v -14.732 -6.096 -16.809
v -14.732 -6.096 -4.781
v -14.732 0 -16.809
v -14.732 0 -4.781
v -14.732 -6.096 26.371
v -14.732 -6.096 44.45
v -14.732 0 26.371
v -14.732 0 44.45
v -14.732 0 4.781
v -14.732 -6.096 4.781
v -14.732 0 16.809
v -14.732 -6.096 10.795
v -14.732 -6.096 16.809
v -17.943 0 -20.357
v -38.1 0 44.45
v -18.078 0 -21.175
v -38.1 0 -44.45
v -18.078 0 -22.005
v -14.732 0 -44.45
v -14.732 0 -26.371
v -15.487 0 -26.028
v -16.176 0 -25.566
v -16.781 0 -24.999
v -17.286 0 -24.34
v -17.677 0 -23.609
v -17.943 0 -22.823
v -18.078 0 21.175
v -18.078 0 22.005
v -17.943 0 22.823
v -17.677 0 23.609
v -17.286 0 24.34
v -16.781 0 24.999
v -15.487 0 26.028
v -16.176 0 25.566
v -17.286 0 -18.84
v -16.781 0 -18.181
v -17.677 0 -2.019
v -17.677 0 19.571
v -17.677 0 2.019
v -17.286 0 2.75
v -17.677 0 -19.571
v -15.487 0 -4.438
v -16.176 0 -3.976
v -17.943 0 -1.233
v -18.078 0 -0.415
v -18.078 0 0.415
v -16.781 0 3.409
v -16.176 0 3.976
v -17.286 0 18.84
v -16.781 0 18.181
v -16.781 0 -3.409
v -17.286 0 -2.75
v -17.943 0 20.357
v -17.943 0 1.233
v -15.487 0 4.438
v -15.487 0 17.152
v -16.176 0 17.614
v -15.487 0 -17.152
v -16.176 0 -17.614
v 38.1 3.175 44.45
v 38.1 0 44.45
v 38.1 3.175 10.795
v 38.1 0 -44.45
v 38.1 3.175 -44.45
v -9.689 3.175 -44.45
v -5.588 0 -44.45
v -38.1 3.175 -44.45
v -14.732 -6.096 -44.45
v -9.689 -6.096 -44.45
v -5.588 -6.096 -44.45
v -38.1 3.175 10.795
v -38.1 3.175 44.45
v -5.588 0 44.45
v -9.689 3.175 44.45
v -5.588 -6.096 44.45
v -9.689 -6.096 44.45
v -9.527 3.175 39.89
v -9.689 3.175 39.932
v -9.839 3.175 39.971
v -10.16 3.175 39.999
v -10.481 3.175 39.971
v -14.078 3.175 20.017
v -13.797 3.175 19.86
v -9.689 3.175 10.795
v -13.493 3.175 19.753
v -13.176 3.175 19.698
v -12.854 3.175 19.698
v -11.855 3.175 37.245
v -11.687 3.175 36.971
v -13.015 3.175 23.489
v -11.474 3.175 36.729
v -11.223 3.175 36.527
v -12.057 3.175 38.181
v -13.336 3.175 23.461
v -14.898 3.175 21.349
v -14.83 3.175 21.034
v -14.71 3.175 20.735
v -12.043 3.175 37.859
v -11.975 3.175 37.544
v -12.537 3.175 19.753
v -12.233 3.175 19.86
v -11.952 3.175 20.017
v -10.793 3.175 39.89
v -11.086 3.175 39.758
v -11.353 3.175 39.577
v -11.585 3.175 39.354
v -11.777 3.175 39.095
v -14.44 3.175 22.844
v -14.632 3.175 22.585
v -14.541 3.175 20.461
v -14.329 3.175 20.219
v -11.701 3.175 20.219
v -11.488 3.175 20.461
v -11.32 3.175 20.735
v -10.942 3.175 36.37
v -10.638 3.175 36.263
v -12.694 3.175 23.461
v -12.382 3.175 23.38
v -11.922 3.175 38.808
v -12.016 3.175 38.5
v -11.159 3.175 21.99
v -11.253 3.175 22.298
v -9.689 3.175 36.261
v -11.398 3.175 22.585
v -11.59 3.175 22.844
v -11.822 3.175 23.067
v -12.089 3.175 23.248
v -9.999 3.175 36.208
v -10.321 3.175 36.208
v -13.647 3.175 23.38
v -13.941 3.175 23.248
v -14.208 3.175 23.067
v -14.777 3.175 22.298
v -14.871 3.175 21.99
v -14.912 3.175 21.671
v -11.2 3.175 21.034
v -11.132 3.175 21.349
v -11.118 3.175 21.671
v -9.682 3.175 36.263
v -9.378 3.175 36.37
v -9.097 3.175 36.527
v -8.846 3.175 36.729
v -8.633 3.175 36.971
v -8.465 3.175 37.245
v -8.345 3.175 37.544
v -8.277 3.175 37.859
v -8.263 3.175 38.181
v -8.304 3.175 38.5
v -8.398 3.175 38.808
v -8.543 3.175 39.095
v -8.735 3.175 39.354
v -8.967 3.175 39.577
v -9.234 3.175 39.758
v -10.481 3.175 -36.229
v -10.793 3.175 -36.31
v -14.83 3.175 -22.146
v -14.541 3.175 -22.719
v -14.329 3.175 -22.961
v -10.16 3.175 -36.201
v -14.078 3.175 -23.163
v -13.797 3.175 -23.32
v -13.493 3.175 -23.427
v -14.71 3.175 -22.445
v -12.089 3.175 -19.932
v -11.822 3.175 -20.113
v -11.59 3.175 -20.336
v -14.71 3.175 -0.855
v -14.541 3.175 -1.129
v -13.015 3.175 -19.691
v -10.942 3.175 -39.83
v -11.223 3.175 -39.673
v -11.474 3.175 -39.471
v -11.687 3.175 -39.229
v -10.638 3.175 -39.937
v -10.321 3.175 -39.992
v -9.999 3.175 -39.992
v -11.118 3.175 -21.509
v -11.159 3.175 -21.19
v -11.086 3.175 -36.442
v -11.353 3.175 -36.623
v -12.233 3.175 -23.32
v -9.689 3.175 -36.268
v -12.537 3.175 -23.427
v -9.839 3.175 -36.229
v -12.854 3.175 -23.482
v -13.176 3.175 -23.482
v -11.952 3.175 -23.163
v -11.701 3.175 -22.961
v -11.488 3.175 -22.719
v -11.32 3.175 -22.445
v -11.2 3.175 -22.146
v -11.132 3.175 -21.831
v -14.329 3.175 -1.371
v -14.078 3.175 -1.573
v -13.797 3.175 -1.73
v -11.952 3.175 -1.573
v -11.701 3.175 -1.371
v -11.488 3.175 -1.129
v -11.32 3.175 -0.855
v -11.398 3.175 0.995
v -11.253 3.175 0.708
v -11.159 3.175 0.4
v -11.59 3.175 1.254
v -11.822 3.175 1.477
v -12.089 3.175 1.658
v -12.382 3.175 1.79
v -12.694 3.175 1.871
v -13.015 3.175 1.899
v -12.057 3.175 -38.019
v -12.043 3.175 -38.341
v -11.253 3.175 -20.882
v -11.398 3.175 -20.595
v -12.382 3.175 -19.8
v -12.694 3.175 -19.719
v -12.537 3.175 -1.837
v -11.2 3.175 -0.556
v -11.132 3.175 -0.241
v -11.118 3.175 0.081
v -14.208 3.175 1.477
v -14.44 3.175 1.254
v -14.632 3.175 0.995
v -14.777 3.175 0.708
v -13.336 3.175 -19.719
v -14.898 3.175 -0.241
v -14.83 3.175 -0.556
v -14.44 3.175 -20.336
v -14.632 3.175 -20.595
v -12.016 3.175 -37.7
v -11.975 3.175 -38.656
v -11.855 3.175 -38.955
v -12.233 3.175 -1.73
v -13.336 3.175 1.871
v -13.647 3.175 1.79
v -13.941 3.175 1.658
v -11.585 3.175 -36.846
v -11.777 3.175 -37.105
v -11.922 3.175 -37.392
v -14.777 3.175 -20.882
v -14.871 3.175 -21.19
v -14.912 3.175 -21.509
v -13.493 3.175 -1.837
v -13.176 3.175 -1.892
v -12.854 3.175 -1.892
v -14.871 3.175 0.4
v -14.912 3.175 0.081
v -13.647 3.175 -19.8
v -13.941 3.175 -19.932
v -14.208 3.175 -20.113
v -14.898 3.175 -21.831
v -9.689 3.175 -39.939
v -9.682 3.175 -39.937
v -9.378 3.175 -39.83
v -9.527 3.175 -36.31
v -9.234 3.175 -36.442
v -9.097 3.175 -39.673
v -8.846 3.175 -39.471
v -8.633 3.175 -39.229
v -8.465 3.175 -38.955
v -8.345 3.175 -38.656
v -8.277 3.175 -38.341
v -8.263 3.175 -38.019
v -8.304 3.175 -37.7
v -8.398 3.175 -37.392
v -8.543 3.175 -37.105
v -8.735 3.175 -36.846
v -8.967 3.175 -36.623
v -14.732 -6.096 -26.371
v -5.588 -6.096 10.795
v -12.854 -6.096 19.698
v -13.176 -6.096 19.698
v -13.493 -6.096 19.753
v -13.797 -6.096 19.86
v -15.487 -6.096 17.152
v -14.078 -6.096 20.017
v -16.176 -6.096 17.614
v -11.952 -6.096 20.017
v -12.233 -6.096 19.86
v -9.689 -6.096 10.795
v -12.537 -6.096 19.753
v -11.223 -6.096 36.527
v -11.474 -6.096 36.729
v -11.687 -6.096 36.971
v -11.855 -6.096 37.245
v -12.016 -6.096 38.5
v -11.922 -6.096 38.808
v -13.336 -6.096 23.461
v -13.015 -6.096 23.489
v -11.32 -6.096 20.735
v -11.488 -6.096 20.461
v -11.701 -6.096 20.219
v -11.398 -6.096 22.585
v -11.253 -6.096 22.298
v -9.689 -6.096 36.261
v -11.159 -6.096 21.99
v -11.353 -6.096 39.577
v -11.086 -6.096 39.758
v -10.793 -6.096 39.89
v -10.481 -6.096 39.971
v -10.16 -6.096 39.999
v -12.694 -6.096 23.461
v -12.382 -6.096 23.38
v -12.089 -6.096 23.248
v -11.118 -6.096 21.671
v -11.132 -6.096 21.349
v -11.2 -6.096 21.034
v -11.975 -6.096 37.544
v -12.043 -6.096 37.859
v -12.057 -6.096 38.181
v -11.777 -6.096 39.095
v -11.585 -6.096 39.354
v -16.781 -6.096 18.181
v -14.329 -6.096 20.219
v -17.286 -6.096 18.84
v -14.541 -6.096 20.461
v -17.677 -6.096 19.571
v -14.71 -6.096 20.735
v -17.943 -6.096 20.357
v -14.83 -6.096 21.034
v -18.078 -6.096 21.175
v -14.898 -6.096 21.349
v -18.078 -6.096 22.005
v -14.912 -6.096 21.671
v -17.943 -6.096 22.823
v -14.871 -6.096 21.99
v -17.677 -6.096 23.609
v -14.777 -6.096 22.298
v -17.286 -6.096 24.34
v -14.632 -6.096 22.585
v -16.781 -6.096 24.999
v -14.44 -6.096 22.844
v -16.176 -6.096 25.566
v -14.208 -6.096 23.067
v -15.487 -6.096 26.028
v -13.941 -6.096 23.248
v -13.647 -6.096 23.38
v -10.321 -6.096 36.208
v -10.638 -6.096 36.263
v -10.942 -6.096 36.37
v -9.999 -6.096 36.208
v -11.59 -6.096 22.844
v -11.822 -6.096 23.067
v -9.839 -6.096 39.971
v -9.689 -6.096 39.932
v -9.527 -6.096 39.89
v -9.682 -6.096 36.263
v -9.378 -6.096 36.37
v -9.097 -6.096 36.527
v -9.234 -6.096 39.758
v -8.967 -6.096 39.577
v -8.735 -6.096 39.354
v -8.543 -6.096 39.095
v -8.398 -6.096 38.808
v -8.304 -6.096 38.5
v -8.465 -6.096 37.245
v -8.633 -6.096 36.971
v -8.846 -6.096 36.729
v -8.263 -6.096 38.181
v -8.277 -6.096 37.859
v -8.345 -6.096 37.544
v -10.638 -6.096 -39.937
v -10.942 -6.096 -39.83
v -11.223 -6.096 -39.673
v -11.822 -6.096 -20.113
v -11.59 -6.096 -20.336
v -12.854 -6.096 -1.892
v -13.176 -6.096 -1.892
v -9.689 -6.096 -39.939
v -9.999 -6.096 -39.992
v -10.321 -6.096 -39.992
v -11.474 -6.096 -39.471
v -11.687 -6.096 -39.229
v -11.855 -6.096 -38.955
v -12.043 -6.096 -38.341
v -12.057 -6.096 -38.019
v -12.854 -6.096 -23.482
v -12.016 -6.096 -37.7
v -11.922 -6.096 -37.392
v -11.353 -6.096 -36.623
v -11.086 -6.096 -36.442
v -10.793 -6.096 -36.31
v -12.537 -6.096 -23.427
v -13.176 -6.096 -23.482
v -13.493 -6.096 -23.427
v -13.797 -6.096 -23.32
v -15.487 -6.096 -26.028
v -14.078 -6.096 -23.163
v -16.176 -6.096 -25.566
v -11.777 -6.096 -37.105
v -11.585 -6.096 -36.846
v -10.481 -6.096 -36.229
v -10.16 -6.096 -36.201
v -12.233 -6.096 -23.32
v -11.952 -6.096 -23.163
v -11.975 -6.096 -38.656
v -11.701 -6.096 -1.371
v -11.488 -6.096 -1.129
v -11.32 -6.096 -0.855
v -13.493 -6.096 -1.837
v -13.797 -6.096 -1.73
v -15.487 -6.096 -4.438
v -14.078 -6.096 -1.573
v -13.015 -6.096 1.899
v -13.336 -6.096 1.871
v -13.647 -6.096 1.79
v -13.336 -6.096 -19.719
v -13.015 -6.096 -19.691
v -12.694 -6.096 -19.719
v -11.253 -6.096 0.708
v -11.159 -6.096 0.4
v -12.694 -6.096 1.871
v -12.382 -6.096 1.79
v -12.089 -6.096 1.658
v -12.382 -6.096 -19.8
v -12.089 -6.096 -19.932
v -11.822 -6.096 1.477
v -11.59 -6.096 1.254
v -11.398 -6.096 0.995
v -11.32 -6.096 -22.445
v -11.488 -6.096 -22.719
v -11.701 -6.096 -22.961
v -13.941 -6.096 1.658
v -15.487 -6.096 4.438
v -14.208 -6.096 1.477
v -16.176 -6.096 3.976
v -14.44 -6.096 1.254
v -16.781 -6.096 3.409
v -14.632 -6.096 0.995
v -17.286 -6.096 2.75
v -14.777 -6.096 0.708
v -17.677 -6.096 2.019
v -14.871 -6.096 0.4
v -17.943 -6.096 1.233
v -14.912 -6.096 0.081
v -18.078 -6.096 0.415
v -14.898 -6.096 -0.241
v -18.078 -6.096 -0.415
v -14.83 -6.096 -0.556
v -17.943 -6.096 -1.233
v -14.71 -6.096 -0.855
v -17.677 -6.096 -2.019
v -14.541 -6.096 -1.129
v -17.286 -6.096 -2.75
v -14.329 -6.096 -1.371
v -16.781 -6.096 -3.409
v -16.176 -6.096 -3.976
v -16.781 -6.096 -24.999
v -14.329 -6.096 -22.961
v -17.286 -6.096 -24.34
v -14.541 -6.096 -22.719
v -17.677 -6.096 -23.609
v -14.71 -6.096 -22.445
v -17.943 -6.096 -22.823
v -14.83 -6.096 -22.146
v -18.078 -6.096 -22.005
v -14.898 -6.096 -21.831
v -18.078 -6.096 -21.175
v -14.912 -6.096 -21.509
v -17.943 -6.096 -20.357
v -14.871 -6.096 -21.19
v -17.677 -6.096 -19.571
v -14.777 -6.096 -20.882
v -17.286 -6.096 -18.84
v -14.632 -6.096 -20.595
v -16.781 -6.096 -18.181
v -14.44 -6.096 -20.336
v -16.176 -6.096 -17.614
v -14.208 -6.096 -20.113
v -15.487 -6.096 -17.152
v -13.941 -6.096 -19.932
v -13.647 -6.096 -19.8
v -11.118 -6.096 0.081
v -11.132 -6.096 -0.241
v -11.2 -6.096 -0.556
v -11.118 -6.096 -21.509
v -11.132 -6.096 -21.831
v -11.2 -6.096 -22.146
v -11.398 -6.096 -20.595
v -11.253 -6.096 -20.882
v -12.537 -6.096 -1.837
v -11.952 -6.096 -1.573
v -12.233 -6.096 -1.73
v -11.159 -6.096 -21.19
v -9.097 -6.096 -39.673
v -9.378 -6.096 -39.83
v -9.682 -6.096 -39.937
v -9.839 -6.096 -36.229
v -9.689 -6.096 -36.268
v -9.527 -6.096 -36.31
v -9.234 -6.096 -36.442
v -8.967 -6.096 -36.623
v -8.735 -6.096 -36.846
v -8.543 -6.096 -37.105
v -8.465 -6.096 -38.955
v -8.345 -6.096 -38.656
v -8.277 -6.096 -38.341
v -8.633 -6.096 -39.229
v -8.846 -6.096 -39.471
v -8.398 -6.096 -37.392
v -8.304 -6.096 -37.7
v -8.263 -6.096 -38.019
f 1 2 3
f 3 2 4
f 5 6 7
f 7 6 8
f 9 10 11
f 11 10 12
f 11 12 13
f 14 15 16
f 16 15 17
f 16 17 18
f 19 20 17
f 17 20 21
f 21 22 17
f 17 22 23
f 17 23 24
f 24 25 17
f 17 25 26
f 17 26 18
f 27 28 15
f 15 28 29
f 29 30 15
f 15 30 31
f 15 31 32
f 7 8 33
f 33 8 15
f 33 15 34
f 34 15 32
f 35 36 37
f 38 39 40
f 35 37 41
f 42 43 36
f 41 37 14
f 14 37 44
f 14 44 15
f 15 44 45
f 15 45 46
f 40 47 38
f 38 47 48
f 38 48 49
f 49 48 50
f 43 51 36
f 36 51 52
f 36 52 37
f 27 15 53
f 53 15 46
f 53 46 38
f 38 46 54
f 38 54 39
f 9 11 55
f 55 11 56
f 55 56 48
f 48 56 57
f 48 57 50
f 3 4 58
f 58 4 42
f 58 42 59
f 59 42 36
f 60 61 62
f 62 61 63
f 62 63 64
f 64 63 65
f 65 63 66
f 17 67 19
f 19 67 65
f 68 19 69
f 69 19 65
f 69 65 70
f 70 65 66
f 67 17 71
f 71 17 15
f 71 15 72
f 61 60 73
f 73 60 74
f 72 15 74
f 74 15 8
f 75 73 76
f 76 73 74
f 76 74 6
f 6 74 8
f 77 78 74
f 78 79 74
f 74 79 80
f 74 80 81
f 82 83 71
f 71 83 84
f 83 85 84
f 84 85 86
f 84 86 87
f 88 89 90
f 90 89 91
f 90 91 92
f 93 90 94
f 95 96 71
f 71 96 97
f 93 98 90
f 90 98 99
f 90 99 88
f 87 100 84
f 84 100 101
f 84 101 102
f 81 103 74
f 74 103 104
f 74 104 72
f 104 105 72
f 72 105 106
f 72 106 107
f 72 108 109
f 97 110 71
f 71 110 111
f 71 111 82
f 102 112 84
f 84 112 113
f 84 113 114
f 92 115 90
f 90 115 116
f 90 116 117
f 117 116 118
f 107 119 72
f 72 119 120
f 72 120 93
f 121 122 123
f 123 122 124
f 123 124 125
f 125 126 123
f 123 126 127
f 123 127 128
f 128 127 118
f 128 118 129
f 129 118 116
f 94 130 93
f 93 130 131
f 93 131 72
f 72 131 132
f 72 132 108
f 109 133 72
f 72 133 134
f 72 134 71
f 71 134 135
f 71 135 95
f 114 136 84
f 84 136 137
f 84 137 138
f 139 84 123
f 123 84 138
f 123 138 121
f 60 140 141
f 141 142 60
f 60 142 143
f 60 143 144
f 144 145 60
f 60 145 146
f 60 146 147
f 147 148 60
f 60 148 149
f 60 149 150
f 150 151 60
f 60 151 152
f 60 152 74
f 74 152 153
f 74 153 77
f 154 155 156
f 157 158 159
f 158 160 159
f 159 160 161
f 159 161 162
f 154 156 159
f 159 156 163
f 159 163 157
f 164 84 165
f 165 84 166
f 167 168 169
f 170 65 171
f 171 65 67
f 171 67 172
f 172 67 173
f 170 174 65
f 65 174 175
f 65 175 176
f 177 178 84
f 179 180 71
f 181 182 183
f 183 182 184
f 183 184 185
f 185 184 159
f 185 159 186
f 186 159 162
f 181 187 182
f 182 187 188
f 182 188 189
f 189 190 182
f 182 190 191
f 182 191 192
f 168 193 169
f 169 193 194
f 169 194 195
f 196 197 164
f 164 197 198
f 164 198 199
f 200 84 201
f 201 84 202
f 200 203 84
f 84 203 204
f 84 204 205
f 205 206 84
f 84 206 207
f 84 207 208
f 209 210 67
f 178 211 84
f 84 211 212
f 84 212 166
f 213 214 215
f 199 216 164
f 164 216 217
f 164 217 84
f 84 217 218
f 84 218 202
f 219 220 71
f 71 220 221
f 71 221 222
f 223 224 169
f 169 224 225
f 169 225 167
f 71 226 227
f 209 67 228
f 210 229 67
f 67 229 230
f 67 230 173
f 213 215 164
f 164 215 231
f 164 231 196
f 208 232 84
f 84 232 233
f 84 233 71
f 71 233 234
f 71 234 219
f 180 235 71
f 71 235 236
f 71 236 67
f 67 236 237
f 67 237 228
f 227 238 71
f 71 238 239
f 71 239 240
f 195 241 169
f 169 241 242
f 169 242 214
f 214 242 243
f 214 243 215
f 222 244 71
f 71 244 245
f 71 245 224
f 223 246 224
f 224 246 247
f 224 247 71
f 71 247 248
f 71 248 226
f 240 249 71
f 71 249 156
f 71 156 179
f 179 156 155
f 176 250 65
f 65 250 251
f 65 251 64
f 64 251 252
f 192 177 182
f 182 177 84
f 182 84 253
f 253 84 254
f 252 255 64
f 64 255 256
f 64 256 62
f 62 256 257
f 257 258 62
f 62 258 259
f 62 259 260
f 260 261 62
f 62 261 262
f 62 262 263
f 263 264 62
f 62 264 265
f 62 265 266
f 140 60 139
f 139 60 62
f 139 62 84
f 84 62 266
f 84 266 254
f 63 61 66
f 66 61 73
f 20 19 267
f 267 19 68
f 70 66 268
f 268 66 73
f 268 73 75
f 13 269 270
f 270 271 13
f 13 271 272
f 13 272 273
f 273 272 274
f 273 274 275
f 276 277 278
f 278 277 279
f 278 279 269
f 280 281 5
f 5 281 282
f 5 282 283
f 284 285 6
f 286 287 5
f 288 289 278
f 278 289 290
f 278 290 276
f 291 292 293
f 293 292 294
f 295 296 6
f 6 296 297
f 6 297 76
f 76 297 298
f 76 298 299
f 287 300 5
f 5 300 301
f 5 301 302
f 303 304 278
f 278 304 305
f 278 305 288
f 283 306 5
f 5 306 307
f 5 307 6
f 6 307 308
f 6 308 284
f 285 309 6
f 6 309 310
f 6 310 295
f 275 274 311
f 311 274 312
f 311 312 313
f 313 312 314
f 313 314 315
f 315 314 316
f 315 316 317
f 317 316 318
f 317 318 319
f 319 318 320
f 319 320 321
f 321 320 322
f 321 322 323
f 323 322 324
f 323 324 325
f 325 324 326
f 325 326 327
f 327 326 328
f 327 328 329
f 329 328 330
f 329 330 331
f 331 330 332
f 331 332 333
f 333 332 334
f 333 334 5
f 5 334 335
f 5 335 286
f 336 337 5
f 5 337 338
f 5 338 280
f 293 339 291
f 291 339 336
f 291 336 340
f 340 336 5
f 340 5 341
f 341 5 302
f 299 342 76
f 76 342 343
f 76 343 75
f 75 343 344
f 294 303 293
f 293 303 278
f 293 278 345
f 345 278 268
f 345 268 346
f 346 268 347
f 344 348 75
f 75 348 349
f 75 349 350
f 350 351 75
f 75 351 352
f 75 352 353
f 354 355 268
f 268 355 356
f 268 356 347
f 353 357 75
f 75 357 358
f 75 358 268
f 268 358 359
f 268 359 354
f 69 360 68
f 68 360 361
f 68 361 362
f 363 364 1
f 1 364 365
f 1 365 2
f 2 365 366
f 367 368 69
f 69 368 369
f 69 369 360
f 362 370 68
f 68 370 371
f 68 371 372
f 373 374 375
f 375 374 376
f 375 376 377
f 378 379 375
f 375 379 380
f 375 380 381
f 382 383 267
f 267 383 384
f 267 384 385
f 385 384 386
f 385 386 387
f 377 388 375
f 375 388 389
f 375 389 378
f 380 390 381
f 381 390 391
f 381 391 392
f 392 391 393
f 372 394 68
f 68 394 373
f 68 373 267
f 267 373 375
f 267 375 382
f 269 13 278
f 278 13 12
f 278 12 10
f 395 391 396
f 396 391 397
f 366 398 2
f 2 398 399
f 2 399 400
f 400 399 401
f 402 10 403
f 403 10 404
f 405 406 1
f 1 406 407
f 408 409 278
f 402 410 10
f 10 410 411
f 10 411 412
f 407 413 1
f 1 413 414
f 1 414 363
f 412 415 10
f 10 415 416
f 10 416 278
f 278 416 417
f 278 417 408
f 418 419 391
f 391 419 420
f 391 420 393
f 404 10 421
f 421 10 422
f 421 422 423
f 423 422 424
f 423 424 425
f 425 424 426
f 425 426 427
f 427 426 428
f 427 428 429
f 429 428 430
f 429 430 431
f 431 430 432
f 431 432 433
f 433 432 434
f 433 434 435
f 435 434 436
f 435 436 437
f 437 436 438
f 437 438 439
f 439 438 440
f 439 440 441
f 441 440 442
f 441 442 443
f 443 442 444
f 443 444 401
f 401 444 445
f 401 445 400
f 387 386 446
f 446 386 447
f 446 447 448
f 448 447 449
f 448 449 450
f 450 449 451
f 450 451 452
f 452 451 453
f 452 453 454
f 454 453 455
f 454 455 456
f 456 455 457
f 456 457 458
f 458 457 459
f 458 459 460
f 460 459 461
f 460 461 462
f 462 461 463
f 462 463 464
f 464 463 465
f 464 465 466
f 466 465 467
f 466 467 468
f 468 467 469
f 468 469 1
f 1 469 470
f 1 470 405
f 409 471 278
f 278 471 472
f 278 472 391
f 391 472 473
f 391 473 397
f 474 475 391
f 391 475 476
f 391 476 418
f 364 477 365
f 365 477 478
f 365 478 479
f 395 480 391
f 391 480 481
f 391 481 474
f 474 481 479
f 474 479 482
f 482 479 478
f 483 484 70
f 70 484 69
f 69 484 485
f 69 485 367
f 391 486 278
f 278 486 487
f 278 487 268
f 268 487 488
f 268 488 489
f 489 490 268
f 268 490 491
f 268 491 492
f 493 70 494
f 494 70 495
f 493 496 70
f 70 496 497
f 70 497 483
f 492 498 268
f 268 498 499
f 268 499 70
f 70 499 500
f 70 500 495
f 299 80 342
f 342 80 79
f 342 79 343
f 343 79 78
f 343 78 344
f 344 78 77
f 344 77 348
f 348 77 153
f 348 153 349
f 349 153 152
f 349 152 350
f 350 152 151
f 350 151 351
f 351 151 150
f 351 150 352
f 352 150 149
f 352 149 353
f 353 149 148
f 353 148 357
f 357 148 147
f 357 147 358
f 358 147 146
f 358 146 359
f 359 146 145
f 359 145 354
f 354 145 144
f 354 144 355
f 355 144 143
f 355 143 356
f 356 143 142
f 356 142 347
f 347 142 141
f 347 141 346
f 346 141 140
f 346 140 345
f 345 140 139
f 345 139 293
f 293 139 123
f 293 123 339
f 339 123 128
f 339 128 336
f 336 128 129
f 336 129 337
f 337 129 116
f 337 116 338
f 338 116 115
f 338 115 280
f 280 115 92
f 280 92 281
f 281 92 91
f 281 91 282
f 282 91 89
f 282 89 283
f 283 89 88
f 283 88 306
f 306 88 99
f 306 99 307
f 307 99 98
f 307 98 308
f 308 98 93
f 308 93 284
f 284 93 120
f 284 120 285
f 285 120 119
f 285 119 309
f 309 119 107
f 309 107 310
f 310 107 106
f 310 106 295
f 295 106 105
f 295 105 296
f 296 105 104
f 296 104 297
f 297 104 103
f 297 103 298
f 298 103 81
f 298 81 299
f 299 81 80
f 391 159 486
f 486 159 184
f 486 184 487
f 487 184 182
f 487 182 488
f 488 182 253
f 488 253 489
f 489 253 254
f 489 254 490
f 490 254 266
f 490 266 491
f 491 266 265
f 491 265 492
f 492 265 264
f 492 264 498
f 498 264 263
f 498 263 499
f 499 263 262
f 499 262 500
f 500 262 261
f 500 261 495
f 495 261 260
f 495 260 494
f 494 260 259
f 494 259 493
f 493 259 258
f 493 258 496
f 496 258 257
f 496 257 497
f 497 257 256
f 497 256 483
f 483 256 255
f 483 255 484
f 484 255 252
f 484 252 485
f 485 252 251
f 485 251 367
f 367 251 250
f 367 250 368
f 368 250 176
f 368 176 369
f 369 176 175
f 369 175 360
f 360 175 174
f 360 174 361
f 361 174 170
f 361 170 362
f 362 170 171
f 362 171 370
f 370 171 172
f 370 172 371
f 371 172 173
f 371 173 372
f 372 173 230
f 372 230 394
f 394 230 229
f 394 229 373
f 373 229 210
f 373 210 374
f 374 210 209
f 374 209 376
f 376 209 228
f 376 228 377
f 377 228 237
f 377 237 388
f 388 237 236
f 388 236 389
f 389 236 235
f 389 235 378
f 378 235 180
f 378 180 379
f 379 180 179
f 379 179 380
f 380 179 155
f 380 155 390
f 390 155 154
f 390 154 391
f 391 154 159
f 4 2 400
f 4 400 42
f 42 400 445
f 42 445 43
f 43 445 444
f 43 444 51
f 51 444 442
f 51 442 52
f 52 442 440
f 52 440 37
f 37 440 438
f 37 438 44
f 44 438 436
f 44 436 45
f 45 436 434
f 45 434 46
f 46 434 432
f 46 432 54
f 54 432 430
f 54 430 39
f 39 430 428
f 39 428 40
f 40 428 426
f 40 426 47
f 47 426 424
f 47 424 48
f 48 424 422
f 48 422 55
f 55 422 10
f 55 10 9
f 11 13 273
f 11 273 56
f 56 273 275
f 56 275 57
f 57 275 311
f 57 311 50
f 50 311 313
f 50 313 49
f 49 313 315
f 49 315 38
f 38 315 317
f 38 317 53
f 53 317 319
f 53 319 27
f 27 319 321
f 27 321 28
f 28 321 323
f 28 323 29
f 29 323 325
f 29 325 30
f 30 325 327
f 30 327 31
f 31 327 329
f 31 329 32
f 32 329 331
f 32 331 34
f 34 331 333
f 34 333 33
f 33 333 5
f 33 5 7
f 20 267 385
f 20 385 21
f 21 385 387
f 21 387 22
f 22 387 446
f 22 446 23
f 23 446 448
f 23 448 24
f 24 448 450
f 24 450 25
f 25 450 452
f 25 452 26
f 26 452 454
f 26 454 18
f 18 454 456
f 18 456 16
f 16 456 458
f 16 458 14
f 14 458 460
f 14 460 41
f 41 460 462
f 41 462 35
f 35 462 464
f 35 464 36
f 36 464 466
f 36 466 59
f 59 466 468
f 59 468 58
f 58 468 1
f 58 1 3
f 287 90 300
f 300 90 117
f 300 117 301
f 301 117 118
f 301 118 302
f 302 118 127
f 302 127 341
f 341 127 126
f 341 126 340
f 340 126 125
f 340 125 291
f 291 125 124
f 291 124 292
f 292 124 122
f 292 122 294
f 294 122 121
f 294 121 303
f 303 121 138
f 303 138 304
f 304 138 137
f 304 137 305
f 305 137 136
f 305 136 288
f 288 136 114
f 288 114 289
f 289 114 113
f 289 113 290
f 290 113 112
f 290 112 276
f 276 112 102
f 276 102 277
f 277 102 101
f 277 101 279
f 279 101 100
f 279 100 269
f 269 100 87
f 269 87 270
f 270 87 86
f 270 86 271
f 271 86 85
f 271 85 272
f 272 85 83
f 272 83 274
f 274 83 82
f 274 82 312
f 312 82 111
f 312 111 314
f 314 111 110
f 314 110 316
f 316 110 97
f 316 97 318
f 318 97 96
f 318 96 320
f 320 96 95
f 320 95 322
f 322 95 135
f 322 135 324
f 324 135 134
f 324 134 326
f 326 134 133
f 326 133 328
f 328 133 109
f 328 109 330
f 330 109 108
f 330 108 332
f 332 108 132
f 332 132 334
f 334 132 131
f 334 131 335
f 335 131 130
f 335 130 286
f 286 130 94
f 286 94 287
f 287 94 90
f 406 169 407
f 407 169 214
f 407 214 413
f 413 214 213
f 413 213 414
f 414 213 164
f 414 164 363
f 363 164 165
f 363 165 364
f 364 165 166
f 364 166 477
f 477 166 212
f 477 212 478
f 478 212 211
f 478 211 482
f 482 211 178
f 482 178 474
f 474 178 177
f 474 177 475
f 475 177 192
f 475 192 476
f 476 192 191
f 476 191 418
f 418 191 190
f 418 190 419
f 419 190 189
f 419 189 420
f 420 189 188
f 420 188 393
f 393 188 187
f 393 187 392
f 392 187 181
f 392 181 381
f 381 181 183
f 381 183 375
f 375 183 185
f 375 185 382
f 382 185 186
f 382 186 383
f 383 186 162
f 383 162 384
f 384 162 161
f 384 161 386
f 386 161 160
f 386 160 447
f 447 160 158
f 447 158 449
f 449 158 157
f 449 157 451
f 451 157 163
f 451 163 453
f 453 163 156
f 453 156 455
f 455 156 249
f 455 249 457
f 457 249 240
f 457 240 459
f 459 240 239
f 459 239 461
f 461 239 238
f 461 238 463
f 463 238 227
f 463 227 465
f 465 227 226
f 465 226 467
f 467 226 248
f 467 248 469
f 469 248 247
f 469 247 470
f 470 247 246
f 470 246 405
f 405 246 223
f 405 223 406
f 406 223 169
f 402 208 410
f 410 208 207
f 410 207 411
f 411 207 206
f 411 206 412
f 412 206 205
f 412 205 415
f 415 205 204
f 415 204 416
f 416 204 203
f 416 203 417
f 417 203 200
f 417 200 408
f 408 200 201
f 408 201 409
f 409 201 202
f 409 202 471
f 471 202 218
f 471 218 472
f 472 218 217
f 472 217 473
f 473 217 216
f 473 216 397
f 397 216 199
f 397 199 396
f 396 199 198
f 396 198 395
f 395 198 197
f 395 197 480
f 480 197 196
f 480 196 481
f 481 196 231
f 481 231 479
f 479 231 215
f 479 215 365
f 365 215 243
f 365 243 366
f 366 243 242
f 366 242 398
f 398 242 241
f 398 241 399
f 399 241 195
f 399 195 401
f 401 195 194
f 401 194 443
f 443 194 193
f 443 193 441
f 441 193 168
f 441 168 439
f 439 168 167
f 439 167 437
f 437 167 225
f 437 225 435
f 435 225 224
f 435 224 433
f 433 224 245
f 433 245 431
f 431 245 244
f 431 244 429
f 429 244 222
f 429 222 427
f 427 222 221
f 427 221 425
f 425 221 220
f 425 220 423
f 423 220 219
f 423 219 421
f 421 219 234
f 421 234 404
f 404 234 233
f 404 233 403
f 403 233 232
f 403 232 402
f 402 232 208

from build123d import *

# Parameters (mm, degrees)
SKETCH1_W             = 76.2
SKETCH1_H             = 88.9
BOSS_EXTRUDE1_DEPTH   = 3.175
SKETCH4_W             = 9.144
SKETCH4_H             = 88.9
BOSS_EXTRUDE2_DEPTH   = 6.096
F_6_CLEARANCE_HOLE1_D = 3.7973
SKETCH5_R             = 5.08
BOSS_EXTRUDE3_DEPTH   = 6.096
F_6_CLEARANCE_HOLE2_D = 3.7973


with BuildPart() as part:
    # Sketch1 → Boss-Extrude1 (new body)
    with BuildSketch(Plane(origin=(0, 0, 0), x_dir=(1, 0, 0), z_dir=(0, 1, 0))):
        Rectangle(SKETCH1_W, SKETCH1_H)
    extrude(amount=BOSS_EXTRUDE1_DEPTH)

    # Sketch4 → Boss-Extrude2 (add)
    with BuildSketch(Plane.XZ):
        with Locations((-10.16, 0)):
            Rectangle(SKETCH4_W, SKETCH4_H)
    extrude(amount=BOSS_EXTRUDE2_DEPTH)

    # #6 Clearance Hole1 (through all)
    with Locations(Plane(origin=(-10.16, 3.175, -38.1), x_dir=(0, 0, 1), z_dir=(0, 1, 0))):
        with Locations((0, 0), (76.2, 0)):
            Hole(F_6_CLEARANCE_HOLE1_D / 2)

    # Sketch5 → Boss-Extrude3 (add)
    with BuildSketch(Plane.XZ.offset(6.096)):
        with Locations((-13.01496, 0)):
            Circle(SKETCH5_R)
        with Locations((-13.01496, 21.59)):
            Circle(SKETCH5_R)
        with Locations((-13.01496, -21.59)):
            Circle(SKETCH5_R)
    extrude(amount=-BOSS_EXTRUDE3_DEPTH)

    # #6 Clearance Hole2 (through all)
    with Locations(Plane(origin=(-13.01496, 3.175, 0), x_dir=(0, 0, 1), z_dir=(0, 1, 0))):
        with Locations((0, 0), (-21.59, 0), (21.59, 0)):
            Hole(F_6_CLEARANCE_HOLE2_D / 2)


solid = part.part
